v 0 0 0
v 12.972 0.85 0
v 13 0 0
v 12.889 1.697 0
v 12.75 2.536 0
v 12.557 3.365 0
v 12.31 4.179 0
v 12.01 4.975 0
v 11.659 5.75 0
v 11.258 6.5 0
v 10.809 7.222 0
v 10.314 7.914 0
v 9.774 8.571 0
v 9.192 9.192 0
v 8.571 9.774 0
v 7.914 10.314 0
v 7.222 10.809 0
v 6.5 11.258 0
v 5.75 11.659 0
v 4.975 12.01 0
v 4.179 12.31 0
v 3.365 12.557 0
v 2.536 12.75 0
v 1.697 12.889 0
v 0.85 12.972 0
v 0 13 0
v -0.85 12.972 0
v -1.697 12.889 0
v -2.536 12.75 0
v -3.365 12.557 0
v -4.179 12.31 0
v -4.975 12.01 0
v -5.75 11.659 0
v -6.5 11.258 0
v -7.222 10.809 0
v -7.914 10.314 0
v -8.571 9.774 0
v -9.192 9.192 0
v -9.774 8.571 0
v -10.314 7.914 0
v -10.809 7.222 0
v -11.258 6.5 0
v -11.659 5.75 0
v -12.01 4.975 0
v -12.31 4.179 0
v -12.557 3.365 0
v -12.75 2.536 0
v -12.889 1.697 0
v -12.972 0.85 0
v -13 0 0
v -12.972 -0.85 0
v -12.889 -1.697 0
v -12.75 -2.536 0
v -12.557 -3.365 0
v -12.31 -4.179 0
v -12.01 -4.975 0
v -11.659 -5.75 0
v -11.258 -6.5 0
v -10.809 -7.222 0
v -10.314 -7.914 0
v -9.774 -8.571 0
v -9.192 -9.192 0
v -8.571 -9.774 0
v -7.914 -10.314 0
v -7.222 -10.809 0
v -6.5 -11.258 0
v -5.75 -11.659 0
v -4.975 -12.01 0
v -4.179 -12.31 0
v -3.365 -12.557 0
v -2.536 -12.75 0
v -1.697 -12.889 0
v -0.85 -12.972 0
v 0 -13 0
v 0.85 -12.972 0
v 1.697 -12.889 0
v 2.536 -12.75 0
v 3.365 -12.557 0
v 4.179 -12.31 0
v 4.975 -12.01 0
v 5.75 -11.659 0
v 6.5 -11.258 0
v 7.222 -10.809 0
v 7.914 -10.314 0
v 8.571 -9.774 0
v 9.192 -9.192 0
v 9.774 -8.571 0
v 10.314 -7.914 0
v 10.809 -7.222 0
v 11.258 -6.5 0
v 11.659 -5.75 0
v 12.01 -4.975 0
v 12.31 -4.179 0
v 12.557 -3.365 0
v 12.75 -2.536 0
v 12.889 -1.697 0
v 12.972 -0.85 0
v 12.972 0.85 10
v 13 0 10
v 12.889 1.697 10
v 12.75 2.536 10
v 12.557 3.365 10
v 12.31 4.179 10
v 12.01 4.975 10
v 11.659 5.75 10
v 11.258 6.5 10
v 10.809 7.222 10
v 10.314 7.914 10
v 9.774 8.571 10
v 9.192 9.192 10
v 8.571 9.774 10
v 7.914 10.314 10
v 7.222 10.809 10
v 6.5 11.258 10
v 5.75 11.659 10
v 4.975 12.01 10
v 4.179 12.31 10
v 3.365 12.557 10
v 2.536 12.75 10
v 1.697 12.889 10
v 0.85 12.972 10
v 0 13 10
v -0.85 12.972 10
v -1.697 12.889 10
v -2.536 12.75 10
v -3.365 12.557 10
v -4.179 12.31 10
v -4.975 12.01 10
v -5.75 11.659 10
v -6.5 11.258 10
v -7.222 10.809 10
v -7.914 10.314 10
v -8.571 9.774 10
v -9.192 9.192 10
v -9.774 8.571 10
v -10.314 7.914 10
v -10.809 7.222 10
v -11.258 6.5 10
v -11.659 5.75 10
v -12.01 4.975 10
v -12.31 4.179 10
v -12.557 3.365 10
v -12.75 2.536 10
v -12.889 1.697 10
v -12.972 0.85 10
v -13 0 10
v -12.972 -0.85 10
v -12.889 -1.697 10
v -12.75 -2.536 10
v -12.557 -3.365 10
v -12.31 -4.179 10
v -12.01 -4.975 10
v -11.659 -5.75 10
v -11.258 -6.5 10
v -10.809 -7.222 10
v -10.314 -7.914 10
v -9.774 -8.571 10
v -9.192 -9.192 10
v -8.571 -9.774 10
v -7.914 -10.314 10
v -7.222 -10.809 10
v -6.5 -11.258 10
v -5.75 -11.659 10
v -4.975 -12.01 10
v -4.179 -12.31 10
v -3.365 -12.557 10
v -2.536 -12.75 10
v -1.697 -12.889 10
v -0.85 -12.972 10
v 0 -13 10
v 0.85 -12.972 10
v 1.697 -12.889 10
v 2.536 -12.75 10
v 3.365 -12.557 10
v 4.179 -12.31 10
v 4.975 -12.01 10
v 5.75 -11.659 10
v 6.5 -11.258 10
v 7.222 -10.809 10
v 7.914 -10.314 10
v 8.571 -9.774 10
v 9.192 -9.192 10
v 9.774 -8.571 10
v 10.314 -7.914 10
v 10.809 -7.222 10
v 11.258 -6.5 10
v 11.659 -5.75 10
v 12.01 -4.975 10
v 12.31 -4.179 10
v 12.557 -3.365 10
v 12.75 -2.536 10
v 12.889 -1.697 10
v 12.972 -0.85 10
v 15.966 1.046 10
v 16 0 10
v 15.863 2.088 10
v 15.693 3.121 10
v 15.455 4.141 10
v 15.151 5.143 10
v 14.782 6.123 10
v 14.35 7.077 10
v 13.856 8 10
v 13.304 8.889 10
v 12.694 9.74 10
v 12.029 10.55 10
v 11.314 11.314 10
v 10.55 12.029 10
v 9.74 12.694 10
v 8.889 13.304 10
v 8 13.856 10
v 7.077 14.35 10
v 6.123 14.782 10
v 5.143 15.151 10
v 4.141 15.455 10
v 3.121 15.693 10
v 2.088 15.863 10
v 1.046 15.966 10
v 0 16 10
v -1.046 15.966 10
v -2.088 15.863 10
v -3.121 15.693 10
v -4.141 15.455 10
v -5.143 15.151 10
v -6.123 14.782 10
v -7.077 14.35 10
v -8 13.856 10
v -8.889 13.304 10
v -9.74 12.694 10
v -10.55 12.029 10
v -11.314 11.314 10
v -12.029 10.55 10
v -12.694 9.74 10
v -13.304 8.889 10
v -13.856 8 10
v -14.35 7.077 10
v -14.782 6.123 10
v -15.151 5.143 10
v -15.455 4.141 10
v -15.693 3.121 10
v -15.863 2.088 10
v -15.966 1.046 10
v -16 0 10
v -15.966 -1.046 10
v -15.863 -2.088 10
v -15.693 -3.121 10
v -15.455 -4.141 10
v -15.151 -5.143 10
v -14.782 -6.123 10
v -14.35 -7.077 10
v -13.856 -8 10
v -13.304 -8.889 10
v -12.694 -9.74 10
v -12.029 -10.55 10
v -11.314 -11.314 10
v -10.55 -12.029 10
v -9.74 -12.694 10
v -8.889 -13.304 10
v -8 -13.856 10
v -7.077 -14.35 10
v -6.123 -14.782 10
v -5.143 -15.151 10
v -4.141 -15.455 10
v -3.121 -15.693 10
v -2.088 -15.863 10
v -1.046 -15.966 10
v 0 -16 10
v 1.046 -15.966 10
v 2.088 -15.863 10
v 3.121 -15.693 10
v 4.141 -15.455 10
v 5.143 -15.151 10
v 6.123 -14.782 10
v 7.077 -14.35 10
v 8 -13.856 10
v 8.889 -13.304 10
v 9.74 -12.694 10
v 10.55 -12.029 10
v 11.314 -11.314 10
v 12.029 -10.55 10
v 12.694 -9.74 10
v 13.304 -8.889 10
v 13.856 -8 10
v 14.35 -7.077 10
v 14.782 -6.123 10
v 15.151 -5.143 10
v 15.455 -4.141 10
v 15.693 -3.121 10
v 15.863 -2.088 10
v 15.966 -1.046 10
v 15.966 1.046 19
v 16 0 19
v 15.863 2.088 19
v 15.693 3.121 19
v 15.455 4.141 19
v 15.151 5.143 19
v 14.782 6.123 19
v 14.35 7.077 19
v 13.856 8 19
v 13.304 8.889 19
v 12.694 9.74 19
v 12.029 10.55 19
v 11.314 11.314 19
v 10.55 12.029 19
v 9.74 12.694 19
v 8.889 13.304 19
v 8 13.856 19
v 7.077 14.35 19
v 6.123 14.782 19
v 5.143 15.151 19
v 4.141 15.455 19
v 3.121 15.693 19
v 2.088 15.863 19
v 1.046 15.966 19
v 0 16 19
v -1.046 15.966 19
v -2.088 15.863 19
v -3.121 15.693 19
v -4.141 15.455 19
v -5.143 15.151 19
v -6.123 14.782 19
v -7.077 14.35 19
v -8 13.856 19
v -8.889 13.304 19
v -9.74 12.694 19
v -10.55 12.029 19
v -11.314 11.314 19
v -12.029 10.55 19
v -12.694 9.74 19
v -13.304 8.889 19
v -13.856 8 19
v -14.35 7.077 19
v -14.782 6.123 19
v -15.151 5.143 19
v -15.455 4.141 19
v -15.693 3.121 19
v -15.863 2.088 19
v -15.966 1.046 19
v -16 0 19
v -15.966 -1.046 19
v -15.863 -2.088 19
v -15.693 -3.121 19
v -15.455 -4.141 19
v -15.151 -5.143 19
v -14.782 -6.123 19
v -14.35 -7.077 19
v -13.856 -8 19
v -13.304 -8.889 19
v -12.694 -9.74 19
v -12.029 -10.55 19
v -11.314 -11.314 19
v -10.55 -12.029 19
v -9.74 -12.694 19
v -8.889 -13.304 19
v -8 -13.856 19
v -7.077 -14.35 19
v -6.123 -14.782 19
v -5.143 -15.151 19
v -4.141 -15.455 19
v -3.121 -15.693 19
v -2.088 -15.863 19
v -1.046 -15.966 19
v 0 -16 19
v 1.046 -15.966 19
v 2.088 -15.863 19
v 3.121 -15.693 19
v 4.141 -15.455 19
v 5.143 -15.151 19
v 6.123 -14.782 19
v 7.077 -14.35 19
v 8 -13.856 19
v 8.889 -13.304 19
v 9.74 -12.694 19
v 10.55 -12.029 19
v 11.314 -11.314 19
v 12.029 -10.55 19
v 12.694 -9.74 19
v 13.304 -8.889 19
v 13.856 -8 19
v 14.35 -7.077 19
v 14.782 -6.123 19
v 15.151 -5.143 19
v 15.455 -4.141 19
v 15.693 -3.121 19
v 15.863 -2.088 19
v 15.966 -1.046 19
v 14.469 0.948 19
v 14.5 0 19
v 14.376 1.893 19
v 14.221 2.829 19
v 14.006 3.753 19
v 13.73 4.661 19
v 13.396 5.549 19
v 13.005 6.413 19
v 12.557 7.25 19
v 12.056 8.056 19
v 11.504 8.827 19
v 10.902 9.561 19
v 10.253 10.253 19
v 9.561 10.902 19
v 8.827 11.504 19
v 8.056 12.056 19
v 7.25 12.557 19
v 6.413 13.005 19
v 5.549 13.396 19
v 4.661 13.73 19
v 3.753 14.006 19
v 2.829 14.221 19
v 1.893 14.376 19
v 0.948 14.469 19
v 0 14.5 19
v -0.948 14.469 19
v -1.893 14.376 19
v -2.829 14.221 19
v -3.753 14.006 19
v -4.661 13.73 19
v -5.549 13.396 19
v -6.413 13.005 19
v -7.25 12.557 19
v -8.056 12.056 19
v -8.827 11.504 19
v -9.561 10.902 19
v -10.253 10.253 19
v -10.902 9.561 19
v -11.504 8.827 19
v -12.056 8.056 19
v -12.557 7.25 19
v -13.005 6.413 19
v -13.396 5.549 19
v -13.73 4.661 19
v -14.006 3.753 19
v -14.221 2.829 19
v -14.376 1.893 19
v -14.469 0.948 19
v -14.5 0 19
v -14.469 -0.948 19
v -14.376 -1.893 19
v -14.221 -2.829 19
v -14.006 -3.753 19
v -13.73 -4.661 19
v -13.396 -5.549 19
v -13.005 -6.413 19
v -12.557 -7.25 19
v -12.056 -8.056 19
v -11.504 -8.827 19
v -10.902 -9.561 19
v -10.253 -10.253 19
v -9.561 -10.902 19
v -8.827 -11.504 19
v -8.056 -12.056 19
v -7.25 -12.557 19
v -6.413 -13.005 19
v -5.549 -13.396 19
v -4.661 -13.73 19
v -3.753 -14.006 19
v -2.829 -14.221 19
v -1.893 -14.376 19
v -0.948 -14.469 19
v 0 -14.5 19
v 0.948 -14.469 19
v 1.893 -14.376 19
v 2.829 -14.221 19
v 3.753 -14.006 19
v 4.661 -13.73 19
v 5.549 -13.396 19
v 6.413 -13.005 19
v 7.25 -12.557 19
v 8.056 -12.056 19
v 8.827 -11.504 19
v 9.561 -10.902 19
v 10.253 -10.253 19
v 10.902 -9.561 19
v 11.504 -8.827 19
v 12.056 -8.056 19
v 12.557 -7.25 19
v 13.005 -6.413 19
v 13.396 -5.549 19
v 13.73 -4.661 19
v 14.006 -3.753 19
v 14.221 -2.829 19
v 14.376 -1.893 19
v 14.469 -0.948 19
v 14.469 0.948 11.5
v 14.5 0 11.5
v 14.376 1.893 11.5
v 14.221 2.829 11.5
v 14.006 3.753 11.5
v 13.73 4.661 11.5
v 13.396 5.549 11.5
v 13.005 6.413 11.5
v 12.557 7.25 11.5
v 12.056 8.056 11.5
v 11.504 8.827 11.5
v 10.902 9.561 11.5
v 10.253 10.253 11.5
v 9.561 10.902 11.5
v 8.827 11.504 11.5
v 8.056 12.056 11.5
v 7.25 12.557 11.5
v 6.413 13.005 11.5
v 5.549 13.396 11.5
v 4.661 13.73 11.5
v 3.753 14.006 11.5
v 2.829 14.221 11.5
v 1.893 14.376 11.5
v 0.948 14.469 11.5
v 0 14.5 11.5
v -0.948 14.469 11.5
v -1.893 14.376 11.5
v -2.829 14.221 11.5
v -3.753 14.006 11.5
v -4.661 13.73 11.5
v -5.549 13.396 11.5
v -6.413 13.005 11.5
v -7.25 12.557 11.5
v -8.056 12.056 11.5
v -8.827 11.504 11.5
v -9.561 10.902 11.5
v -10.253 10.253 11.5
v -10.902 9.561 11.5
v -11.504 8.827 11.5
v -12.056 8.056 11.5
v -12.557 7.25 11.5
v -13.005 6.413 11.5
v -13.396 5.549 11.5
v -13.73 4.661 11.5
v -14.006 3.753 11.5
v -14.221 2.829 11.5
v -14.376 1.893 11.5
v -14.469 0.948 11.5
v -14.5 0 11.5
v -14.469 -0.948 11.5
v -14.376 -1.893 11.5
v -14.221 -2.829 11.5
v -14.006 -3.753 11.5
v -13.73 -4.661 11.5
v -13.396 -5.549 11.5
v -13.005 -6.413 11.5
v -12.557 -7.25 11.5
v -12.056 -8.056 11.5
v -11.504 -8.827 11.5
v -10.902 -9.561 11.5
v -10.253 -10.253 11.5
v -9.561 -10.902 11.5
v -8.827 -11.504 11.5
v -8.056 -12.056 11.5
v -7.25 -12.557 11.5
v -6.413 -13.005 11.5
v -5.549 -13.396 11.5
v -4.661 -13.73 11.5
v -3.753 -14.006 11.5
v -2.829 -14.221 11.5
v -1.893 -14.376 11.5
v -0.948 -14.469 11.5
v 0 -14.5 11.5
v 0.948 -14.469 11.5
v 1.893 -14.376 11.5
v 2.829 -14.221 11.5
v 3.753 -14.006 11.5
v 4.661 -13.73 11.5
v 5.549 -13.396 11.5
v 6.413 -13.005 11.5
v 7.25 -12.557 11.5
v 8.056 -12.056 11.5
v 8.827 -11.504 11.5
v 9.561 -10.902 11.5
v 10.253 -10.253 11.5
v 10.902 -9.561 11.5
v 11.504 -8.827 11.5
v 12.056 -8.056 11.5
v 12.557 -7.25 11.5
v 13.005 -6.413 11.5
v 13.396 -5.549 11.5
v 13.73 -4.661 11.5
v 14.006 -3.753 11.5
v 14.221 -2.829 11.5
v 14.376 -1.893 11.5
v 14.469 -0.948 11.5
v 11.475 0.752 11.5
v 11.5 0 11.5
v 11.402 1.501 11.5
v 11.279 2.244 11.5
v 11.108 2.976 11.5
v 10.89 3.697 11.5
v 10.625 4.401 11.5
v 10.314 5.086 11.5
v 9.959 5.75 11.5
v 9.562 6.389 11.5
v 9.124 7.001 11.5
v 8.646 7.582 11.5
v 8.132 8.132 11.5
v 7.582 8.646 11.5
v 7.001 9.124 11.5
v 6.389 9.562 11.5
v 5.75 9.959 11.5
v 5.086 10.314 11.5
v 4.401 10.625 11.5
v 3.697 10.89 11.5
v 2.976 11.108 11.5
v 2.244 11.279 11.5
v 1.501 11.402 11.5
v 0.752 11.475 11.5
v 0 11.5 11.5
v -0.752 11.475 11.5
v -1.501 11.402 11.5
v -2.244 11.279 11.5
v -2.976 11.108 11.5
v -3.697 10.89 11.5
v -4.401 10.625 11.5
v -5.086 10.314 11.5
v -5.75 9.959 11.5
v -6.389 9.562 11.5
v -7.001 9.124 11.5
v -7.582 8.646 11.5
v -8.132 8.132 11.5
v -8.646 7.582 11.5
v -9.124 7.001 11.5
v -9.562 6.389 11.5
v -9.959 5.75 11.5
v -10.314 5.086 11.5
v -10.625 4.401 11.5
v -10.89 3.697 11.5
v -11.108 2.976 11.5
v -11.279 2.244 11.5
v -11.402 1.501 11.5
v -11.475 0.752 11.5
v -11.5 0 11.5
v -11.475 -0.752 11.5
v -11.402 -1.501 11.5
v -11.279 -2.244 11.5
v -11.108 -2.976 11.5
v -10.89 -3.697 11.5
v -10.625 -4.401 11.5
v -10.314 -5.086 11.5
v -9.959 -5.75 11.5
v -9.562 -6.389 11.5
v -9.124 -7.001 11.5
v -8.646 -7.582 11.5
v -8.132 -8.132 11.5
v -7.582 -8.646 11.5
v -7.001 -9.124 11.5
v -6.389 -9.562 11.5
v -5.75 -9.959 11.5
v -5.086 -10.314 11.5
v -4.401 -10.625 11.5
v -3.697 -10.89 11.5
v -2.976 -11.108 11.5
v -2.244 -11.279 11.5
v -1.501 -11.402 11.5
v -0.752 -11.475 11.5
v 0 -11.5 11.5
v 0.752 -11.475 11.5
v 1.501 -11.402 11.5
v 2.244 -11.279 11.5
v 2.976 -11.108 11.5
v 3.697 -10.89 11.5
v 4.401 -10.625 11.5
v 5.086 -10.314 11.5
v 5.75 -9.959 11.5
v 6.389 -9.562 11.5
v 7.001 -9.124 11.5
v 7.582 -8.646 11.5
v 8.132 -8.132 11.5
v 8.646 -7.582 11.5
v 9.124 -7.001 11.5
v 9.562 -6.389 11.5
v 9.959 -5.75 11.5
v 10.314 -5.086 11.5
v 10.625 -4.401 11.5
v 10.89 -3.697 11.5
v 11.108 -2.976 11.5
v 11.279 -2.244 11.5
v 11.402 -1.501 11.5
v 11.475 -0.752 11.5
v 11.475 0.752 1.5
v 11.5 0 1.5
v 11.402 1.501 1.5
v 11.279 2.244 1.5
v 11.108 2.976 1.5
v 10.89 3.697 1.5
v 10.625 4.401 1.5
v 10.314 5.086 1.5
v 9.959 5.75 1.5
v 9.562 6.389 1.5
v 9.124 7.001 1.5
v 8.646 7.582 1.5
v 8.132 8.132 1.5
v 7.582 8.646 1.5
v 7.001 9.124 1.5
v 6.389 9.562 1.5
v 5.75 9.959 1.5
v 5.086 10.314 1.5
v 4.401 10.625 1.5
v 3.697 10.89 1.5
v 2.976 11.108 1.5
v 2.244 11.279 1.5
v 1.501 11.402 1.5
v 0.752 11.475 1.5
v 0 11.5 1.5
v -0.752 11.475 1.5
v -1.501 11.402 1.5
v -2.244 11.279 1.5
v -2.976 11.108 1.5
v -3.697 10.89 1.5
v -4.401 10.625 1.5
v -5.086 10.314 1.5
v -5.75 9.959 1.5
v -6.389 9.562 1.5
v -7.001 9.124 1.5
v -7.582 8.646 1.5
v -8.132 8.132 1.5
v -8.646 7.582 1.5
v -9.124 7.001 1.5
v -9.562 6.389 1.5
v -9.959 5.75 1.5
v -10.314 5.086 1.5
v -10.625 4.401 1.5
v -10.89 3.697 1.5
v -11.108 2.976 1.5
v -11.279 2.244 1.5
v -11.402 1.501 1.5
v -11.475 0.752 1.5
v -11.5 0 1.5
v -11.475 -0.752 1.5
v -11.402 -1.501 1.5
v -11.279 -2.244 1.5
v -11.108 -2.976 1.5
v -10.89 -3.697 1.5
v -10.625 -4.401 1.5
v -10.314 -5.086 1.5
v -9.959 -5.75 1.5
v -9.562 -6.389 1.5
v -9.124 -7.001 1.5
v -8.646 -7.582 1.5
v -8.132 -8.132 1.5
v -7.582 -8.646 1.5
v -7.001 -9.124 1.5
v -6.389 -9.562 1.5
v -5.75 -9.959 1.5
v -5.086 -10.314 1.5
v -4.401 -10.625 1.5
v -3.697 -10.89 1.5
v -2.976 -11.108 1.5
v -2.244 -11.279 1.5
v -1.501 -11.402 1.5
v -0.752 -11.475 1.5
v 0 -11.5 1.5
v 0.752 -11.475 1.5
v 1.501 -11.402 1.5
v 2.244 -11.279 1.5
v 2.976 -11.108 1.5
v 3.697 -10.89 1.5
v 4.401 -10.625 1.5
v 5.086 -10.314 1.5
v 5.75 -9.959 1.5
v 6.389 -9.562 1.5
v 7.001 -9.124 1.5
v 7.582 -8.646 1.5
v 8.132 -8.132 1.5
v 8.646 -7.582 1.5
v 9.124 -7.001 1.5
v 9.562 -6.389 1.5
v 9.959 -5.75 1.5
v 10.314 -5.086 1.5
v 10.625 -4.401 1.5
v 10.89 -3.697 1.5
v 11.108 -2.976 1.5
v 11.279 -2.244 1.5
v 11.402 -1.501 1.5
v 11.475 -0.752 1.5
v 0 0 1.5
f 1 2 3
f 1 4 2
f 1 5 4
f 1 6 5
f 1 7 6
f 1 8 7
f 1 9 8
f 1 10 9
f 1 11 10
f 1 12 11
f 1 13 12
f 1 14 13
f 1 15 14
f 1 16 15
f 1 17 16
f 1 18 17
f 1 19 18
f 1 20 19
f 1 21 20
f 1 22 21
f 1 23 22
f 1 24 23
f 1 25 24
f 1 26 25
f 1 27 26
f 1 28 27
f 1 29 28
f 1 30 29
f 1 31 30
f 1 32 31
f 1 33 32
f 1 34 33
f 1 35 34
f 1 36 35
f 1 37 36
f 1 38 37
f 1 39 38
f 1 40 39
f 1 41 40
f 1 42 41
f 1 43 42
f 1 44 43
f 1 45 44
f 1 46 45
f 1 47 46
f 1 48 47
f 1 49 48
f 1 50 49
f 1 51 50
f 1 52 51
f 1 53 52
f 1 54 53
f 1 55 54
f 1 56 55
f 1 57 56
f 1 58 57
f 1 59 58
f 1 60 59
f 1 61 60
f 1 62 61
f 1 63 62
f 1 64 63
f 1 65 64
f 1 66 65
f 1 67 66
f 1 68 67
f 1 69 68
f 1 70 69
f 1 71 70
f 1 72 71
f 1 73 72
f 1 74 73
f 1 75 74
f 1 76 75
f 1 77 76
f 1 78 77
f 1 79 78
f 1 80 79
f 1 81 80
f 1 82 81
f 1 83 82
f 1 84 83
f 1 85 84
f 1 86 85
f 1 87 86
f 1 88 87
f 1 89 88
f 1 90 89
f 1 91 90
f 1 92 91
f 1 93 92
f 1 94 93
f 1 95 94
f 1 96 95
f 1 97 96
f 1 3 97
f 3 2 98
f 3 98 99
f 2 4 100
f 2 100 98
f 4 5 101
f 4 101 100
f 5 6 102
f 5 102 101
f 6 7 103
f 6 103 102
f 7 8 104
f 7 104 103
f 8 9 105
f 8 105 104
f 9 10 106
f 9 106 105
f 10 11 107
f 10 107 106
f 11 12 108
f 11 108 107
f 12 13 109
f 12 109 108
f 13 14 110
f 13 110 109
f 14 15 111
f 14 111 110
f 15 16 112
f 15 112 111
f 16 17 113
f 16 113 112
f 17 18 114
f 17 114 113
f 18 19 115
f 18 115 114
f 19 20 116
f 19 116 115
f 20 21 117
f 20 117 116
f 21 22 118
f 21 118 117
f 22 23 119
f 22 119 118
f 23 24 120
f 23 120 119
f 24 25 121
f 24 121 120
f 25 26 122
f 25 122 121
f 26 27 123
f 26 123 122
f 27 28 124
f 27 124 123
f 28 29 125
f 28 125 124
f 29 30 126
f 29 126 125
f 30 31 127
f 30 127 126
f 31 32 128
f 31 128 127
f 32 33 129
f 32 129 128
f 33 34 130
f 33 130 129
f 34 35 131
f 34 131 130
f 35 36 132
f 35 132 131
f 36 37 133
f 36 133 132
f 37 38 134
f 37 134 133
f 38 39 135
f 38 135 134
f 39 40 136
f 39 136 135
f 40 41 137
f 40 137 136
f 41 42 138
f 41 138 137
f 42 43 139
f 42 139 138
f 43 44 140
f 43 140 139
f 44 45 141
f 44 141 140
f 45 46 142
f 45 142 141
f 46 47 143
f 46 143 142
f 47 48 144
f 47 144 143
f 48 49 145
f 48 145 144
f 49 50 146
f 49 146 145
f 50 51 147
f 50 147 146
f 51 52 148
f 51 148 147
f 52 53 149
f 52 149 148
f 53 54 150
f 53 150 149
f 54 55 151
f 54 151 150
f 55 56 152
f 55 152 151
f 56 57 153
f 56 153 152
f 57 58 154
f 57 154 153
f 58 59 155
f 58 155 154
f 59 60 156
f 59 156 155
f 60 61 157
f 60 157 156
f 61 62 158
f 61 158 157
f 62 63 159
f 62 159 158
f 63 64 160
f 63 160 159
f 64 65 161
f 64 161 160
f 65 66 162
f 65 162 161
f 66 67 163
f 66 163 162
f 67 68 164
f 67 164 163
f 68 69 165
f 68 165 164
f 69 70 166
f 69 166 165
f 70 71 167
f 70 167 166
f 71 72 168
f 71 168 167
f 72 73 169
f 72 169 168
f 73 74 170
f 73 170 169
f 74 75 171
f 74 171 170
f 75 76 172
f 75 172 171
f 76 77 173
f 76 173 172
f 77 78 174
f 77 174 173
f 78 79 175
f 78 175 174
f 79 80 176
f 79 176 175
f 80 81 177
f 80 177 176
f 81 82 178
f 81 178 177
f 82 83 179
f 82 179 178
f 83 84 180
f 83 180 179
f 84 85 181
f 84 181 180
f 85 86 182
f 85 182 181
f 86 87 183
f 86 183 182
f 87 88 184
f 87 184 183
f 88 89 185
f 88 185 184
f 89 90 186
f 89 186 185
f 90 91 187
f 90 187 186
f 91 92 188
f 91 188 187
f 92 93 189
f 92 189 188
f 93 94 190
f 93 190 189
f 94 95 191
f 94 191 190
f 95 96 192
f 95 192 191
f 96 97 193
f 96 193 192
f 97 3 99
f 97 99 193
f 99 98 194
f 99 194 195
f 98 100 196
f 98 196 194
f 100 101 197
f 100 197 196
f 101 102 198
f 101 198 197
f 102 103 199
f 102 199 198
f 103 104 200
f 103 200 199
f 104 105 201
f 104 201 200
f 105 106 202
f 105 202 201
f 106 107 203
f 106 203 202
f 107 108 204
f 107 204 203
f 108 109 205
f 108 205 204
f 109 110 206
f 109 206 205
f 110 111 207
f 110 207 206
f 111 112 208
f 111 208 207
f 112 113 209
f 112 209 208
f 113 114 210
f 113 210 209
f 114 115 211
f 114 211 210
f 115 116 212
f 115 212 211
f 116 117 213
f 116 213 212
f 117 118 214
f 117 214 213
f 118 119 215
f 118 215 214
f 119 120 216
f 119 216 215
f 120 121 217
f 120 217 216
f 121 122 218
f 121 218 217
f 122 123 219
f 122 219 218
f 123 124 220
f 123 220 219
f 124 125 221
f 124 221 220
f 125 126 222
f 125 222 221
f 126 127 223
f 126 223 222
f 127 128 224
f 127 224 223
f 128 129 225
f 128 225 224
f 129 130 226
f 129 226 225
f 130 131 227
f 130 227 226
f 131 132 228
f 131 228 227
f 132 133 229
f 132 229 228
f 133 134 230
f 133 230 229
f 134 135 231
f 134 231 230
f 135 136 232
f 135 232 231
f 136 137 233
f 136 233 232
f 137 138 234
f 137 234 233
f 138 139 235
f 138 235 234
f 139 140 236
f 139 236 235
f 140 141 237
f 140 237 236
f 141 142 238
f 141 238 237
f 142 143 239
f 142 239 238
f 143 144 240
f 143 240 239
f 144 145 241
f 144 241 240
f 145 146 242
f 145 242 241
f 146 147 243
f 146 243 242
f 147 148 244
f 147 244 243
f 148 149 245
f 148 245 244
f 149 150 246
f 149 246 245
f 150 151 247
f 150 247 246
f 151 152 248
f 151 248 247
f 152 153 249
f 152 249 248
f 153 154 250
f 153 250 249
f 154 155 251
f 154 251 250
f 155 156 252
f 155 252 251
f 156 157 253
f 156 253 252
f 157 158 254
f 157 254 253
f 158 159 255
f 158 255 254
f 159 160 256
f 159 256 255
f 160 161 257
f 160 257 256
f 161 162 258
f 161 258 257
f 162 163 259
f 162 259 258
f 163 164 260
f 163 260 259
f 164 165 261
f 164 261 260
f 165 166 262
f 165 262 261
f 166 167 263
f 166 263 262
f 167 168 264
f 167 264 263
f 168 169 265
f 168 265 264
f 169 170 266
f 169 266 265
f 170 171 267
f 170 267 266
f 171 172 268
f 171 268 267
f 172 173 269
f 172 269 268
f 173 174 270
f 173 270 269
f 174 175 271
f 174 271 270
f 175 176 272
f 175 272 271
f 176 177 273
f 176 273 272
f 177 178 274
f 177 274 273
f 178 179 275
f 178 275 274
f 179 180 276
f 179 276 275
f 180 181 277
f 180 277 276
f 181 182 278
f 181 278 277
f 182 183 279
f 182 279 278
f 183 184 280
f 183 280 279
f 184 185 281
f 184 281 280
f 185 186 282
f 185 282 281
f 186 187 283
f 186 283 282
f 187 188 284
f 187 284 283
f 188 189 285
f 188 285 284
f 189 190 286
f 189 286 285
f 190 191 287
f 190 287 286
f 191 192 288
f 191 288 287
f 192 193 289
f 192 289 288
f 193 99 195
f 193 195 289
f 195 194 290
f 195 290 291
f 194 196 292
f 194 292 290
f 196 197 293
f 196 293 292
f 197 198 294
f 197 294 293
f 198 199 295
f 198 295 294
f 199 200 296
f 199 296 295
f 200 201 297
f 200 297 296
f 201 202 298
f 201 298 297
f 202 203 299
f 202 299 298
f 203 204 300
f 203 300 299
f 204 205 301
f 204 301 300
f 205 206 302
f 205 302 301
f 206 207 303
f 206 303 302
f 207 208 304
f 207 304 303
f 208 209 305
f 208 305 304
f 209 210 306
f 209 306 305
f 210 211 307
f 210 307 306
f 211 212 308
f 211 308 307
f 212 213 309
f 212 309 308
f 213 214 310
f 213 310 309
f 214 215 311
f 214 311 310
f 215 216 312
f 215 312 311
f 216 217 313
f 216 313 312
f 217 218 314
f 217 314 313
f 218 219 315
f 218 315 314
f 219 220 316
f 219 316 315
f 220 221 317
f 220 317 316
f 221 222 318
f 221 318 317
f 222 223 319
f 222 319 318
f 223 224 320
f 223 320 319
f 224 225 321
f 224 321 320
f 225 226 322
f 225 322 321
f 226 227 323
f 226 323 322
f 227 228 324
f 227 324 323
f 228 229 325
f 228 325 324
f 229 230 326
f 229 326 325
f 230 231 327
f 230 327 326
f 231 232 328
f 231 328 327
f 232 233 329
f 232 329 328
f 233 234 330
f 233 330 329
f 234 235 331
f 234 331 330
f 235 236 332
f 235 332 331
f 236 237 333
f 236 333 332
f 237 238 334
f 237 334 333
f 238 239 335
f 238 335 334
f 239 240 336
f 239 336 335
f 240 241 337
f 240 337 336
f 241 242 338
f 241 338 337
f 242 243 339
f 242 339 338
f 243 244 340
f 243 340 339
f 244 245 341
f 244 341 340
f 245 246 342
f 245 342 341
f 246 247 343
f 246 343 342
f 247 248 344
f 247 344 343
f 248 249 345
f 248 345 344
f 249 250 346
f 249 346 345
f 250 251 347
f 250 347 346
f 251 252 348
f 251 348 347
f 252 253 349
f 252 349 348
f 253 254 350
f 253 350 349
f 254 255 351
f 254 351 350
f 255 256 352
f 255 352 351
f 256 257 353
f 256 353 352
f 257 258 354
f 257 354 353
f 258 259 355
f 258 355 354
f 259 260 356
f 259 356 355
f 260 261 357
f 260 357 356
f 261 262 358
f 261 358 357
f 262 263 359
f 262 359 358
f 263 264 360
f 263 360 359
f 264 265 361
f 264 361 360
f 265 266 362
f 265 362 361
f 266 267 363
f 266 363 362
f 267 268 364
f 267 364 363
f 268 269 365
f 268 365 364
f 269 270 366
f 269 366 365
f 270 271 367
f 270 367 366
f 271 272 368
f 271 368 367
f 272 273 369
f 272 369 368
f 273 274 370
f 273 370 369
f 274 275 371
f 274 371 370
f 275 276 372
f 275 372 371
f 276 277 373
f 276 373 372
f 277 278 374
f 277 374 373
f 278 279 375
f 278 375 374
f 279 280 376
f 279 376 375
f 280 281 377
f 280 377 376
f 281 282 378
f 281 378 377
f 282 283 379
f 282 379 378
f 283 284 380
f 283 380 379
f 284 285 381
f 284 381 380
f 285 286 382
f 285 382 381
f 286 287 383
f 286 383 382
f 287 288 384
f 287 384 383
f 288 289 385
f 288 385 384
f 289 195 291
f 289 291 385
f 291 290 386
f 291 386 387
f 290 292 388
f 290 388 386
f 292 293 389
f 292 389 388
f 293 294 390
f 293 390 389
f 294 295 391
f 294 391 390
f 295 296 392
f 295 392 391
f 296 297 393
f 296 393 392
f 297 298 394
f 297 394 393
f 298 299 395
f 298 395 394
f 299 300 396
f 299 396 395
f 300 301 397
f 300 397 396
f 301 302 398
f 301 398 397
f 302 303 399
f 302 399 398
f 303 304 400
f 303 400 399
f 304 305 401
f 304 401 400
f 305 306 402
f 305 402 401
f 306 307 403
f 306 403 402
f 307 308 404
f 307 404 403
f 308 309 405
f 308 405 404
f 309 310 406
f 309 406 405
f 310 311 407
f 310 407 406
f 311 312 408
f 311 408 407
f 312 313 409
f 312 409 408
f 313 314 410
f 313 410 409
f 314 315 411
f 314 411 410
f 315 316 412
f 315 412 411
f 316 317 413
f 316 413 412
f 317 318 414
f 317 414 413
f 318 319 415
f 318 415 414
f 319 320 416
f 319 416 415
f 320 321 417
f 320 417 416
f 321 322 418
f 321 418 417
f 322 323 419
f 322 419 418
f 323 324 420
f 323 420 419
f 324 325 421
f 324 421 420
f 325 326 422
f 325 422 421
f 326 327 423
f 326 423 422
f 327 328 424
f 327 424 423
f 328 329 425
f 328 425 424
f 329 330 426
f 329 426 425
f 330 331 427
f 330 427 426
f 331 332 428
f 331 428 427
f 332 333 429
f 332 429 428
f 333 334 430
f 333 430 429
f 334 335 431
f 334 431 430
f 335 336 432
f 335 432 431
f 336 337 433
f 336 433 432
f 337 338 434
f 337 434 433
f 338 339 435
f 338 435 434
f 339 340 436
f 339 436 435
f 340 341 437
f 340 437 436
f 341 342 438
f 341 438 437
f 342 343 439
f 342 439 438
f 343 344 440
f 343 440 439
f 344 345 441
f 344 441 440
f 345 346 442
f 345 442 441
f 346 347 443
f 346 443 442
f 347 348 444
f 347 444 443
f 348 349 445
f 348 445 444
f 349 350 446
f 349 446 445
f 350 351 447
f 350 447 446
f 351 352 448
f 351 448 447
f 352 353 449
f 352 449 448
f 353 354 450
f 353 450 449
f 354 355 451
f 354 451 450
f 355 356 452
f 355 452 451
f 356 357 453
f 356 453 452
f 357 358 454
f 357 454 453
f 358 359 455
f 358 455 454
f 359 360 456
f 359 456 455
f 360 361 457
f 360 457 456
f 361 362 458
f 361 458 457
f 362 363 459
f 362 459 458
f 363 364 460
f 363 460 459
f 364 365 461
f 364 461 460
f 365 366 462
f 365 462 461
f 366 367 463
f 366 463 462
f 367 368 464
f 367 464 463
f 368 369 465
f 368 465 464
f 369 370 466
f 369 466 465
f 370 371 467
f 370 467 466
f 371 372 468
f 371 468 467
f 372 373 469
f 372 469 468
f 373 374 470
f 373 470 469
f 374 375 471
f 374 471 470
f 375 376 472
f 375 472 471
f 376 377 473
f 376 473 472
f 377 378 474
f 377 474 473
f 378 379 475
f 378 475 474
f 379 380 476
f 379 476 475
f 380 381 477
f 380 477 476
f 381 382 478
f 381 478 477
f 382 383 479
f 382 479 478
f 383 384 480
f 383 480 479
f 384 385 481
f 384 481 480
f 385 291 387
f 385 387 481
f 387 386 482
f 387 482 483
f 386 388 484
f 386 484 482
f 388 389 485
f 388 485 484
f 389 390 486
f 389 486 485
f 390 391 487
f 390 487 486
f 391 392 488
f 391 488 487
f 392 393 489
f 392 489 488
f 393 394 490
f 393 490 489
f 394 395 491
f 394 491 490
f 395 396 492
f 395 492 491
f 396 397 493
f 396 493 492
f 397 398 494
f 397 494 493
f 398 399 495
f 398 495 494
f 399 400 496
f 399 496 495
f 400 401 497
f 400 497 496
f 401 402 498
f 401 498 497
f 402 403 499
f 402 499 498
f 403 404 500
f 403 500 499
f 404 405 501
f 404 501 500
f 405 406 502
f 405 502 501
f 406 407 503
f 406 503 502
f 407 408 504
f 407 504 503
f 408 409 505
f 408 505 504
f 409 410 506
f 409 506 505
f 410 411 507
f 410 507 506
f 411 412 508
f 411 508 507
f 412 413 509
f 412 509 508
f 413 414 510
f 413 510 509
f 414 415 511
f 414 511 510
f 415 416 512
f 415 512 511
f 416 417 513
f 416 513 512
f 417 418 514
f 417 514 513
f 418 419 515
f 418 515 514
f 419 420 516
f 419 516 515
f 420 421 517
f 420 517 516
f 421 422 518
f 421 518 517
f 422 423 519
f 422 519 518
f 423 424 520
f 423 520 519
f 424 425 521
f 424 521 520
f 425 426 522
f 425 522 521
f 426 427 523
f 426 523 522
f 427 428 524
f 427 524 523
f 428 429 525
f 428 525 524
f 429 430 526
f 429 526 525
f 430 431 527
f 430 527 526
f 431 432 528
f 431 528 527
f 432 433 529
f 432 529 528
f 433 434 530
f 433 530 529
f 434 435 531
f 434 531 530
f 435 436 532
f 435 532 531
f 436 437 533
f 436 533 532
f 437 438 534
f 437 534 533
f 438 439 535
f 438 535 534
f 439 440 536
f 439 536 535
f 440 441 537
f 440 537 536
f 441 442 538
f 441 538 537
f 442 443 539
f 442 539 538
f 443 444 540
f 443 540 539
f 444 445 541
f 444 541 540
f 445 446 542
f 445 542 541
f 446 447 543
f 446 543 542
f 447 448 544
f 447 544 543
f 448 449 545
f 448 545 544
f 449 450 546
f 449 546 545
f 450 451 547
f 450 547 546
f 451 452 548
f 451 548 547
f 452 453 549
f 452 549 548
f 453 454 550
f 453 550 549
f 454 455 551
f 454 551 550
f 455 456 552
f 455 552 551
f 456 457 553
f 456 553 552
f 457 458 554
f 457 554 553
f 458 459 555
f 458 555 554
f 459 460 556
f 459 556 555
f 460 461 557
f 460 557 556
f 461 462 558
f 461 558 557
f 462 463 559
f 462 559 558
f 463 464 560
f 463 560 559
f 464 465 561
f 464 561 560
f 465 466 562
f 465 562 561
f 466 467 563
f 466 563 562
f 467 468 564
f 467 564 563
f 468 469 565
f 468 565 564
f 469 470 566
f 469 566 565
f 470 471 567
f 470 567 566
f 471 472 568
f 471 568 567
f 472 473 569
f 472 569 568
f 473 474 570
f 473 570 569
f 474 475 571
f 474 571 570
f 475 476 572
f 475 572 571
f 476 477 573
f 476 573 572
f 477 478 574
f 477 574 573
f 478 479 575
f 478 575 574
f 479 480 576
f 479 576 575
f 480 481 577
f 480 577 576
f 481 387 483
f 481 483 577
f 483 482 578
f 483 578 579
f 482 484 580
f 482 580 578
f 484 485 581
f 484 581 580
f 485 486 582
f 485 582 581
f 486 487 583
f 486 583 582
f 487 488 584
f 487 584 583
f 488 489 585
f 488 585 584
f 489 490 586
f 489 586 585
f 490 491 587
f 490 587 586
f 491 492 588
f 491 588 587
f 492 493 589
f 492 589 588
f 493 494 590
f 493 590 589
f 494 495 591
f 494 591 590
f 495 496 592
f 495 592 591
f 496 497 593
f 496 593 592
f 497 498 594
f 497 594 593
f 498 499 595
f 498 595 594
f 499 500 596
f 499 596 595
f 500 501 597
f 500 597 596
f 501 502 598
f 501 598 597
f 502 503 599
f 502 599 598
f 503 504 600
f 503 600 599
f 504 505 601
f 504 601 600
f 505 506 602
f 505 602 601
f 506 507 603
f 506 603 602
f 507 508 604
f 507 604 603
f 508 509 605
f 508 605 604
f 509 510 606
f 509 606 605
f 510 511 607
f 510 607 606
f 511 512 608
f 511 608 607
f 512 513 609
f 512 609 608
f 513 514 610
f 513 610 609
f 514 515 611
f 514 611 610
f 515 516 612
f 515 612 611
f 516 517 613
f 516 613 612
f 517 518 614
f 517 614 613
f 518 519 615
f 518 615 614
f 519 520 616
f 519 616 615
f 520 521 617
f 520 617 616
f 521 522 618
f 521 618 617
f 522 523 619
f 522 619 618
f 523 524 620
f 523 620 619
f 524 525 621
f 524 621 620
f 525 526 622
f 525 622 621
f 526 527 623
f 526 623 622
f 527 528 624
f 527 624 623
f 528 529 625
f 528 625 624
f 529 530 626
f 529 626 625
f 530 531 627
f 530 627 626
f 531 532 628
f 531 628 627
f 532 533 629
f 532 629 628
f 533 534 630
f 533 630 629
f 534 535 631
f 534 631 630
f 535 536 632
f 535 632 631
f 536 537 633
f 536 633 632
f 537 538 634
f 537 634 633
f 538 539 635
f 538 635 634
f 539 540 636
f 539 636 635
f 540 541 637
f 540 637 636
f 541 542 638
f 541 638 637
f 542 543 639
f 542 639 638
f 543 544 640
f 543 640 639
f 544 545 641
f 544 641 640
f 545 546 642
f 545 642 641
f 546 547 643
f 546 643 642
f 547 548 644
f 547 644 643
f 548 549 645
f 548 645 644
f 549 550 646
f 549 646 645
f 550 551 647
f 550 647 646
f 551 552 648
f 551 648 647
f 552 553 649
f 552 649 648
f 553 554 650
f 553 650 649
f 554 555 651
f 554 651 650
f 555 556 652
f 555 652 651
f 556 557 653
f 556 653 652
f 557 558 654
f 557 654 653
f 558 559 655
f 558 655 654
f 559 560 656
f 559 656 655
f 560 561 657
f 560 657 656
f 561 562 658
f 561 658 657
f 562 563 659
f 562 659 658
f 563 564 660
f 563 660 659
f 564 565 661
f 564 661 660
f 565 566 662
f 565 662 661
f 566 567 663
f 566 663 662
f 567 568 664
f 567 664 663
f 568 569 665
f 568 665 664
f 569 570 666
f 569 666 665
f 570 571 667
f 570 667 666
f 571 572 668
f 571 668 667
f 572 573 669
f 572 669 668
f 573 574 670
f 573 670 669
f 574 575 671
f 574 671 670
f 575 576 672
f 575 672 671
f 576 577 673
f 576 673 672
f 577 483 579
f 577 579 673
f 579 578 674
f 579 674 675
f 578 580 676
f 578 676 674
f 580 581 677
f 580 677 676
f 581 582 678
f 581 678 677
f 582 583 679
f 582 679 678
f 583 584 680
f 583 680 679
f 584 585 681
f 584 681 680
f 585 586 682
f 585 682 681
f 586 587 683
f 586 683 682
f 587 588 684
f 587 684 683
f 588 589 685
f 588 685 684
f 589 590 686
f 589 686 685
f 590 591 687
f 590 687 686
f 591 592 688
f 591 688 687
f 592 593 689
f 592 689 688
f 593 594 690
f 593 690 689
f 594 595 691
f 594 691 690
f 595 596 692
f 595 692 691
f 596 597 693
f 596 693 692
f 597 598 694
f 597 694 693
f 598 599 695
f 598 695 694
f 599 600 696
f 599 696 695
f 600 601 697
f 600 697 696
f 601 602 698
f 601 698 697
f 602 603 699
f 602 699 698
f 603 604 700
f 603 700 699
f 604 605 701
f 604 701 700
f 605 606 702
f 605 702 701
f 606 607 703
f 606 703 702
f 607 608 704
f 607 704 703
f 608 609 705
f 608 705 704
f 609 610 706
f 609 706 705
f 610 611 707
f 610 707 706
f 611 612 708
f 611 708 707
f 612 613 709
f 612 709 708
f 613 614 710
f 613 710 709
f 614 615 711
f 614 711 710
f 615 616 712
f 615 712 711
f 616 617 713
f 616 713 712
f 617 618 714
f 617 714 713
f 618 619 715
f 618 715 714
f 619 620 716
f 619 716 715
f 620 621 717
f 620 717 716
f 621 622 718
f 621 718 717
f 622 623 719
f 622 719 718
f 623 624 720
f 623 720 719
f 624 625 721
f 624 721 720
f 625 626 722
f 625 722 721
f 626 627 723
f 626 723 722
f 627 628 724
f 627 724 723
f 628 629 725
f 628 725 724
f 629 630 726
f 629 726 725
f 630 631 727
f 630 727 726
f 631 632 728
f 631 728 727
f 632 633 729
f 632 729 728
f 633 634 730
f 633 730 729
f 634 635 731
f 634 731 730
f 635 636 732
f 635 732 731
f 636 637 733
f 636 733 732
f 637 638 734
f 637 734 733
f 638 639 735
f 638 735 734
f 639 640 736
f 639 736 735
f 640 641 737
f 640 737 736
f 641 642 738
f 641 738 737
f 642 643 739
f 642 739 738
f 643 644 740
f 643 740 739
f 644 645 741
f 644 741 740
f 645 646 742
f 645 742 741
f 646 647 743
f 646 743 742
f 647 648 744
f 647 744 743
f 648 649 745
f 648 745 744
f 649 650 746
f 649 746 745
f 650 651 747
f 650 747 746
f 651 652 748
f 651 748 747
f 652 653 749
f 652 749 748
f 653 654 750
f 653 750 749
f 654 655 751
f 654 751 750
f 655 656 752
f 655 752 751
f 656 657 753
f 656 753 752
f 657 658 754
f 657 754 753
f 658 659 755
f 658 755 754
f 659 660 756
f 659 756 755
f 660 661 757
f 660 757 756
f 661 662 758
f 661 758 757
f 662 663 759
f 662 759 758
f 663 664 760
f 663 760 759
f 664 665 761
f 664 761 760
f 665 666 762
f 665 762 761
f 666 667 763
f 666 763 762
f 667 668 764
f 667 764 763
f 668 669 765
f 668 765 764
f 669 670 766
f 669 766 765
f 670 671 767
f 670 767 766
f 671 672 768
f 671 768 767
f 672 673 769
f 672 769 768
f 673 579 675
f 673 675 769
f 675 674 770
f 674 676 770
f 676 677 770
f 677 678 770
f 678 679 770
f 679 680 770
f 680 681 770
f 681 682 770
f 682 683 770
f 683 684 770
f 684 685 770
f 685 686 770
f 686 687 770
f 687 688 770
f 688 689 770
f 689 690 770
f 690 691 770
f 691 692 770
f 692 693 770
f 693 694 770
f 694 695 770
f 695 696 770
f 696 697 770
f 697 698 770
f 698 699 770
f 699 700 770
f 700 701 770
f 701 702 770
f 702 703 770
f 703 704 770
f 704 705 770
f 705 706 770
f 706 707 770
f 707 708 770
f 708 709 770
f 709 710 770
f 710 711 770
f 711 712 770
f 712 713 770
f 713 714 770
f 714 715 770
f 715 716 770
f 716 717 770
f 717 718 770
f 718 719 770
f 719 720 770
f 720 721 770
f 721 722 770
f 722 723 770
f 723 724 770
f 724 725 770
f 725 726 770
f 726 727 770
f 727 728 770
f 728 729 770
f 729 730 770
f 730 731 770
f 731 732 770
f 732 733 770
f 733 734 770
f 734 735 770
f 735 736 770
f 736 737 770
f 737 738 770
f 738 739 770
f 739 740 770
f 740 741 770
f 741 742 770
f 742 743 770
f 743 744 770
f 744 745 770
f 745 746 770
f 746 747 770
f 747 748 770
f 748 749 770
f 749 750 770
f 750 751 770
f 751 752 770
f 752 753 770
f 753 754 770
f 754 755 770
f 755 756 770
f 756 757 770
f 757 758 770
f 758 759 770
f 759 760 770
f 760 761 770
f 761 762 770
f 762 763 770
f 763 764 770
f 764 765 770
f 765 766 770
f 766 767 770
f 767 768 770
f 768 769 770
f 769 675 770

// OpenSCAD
// Original MechIntel educational model. CC0-1.0. Units: mm.
// Not a standardized or load-rated component.
$fn=96;
// Section points: [radius, height], mm. Edit to change the profile.
section=[[0, 0], [13, 0], [13, 10], [16, 10], [16, 19], [14.5, 19], [14.5, 11.5], [11.5, 11.5], [11.5, 1.5], [0, 1.5]];
rotate_extrude($fn=96) polygon(points=section);
